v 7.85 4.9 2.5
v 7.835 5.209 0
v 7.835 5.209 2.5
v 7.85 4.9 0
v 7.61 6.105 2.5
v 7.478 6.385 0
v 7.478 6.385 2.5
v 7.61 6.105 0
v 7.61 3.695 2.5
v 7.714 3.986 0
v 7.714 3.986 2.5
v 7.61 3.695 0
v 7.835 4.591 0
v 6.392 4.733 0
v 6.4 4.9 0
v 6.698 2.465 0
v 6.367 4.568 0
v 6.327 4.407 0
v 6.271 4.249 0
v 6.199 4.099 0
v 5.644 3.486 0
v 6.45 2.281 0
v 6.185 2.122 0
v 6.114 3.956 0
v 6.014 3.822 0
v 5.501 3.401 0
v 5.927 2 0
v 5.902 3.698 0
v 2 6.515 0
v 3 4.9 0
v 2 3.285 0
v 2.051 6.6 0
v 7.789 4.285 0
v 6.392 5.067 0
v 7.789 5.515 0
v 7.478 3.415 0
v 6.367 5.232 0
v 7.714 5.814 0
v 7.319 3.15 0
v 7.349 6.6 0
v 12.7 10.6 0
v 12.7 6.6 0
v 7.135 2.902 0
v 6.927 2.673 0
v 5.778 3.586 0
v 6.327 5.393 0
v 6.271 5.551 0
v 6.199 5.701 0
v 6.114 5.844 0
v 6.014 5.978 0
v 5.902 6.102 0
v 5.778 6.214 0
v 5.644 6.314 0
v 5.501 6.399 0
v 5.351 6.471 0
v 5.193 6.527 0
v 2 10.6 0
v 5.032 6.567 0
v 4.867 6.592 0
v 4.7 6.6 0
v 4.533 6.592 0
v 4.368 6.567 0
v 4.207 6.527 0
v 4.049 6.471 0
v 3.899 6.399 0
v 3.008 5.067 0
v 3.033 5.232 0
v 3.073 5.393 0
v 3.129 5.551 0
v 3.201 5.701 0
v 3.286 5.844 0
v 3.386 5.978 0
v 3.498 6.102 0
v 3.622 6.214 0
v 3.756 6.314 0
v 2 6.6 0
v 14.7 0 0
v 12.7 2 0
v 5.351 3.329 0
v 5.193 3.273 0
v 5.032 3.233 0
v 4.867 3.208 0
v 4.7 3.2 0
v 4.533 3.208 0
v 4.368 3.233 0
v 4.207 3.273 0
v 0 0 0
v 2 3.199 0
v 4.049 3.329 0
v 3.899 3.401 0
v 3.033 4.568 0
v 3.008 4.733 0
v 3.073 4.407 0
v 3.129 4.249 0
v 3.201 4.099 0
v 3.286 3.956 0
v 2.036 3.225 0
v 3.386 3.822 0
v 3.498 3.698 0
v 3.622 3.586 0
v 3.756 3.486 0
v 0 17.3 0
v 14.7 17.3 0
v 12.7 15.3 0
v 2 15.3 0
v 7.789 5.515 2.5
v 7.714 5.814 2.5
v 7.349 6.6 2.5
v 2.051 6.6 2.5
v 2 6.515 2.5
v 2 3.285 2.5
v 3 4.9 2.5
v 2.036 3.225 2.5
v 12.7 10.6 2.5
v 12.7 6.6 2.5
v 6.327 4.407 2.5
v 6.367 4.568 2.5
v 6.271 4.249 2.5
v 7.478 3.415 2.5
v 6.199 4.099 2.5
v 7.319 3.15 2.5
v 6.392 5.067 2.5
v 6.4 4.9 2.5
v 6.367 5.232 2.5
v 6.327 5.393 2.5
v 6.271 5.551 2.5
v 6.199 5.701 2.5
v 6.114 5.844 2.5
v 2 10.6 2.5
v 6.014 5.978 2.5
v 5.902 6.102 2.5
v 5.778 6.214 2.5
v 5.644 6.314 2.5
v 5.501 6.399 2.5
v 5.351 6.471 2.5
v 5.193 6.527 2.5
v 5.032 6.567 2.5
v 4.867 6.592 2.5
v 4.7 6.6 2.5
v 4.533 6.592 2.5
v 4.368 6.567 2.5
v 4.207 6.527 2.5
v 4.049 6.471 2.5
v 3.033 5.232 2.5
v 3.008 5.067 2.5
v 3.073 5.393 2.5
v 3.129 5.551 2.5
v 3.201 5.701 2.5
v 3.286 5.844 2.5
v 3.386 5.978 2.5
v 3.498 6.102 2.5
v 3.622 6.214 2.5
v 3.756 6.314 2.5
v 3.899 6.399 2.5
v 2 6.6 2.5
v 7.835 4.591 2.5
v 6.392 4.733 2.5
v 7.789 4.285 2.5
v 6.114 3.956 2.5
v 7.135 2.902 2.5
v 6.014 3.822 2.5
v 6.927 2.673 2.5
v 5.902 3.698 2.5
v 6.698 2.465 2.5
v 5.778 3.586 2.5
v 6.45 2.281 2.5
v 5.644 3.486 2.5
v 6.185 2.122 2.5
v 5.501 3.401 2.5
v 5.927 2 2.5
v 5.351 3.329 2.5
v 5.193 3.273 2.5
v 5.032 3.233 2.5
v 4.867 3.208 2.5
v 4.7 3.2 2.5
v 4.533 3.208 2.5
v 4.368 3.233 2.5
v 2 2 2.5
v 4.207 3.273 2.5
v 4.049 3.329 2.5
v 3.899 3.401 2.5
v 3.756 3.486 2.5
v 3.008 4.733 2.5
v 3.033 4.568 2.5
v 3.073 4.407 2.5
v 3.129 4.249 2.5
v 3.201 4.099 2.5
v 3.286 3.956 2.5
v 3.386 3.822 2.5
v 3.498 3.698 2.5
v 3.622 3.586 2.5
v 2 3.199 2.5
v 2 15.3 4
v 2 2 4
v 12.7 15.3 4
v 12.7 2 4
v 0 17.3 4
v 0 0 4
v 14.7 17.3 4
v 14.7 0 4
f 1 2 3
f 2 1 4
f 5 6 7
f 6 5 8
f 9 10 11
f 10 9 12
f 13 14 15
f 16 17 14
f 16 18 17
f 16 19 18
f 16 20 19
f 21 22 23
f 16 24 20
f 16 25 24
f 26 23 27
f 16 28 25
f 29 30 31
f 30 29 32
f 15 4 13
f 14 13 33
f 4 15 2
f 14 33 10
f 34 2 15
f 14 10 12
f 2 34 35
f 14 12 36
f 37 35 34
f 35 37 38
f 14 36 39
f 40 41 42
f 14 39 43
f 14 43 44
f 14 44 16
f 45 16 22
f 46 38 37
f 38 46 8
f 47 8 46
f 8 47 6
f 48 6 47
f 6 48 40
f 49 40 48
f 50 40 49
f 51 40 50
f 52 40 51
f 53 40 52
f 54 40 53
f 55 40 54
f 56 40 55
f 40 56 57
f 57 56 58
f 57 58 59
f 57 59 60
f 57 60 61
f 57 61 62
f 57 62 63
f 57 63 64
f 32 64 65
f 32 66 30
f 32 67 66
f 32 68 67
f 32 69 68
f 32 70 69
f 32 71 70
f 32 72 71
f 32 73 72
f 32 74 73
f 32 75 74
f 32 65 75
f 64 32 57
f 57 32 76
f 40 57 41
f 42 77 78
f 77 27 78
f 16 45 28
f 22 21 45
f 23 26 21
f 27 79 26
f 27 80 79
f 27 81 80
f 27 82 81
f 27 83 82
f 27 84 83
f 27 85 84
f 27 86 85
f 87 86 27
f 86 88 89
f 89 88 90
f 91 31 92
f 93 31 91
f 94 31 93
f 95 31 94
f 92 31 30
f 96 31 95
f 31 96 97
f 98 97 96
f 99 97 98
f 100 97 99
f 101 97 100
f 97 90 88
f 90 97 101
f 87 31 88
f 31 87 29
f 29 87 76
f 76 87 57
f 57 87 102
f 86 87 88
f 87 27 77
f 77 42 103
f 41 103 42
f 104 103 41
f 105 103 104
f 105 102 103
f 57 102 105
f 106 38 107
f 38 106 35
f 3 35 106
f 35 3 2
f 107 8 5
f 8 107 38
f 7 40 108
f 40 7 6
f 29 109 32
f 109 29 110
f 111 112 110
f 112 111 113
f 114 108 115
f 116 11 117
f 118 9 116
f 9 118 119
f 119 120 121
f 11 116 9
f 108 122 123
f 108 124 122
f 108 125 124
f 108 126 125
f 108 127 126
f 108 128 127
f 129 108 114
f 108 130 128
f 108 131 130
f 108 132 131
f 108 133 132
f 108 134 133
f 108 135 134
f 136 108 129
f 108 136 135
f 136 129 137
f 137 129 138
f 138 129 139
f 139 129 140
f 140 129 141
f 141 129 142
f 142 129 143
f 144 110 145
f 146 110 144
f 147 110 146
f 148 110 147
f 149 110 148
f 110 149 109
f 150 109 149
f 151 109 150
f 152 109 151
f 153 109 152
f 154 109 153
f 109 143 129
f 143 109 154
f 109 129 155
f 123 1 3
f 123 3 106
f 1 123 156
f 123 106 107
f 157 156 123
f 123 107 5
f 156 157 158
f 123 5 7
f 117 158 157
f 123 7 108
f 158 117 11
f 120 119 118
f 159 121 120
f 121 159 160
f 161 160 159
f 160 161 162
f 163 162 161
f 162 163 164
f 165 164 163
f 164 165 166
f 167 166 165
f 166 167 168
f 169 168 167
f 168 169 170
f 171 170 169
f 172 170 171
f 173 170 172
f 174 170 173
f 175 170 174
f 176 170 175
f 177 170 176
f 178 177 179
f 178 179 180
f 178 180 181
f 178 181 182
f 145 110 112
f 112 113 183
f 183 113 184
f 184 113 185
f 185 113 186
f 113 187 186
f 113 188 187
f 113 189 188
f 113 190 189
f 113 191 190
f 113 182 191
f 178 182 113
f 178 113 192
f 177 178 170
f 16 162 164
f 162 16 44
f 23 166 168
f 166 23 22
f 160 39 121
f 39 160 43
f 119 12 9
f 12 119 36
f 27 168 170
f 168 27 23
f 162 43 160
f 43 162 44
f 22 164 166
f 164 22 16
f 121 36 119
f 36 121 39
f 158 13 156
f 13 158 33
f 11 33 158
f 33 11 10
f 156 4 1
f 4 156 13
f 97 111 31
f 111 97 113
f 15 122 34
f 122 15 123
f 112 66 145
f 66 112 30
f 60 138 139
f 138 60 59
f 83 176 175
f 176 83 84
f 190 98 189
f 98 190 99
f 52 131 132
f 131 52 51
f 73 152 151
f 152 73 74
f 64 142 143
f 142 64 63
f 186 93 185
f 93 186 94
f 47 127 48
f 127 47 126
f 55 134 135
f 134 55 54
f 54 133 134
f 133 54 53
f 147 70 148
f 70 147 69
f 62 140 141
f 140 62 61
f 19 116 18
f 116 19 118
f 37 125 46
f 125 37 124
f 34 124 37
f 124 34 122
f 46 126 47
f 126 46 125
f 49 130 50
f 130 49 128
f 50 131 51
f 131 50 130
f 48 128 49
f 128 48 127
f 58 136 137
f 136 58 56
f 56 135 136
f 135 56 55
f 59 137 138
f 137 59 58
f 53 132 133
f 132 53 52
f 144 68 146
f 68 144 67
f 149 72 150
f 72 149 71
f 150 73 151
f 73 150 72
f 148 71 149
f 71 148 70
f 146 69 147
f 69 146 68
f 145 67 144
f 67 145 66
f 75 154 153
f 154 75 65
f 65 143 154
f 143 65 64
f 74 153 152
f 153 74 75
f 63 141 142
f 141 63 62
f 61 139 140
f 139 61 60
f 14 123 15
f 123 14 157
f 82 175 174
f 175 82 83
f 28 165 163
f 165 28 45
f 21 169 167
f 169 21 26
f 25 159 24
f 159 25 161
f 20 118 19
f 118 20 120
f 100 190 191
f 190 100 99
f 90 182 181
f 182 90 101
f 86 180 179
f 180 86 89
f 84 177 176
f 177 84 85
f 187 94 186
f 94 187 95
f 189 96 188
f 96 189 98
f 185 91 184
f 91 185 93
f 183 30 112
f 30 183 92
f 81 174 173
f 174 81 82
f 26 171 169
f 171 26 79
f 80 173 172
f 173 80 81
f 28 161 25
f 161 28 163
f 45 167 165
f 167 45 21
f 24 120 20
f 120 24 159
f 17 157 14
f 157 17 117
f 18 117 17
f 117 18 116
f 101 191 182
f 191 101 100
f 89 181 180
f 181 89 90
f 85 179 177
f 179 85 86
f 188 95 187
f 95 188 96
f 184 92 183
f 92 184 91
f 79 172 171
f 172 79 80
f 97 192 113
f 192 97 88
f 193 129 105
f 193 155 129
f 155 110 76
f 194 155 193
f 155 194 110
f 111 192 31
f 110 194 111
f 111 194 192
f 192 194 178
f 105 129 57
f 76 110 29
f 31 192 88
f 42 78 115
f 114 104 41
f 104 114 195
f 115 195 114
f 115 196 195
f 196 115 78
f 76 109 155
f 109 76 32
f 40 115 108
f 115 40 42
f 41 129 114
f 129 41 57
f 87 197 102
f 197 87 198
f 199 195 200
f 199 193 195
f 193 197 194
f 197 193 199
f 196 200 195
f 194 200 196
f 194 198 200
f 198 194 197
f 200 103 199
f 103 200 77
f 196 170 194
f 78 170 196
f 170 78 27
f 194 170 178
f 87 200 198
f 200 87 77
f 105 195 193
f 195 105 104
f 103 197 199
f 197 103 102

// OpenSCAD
$fn=64;

wHeight=4; //wall height
wThick=2; //wall thickness
bWidth=10.7; //board width
bHeight=13.3; //board height

module screwMount(){
  difference(){
    cylinder(h = wHeight-1.5,
             d = 6.3,
        center = false);
    cylinder(h = wHeight-1.3,
             d = 3.4,
        center = false);
  } 
}

module spacer(){
  cube([bWidth, 4, wHeight-1.5],false);  
}

module screwMountFill(){
  cylinder(h = wHeight-1.5,
           d = 2,
      center = false);
}

module main(){
  union(){
    //screw mounts
    translate([wThick+2.7, wThick+2.9, 0])
      screwMount();

    //screw mounts connections
    translate([wThick+0.6, wThick+0.4, 0])
      screwMountFill();
        
    //back spacer
    translate([wThick, wThick+4.6, 0])
      spacer();

    //front wall
    translate([0, 0, 0])
      cube([wThick*2+bWidth, wThick, wHeight], false);
    //back wall
    translate([0, wThick+bHeight, 0])
      cube([wThick*2+bWidth, wThick, wHeight], false);

    //side walls
    translate([0, 0, 0])
      cube([wThick, wThick+bHeight, wHeight], false);    
    translate([wThick+bWidth, 0, 0])
      cube([wThick, wThick+bHeight, wHeight], false);
  }  
}


main();
